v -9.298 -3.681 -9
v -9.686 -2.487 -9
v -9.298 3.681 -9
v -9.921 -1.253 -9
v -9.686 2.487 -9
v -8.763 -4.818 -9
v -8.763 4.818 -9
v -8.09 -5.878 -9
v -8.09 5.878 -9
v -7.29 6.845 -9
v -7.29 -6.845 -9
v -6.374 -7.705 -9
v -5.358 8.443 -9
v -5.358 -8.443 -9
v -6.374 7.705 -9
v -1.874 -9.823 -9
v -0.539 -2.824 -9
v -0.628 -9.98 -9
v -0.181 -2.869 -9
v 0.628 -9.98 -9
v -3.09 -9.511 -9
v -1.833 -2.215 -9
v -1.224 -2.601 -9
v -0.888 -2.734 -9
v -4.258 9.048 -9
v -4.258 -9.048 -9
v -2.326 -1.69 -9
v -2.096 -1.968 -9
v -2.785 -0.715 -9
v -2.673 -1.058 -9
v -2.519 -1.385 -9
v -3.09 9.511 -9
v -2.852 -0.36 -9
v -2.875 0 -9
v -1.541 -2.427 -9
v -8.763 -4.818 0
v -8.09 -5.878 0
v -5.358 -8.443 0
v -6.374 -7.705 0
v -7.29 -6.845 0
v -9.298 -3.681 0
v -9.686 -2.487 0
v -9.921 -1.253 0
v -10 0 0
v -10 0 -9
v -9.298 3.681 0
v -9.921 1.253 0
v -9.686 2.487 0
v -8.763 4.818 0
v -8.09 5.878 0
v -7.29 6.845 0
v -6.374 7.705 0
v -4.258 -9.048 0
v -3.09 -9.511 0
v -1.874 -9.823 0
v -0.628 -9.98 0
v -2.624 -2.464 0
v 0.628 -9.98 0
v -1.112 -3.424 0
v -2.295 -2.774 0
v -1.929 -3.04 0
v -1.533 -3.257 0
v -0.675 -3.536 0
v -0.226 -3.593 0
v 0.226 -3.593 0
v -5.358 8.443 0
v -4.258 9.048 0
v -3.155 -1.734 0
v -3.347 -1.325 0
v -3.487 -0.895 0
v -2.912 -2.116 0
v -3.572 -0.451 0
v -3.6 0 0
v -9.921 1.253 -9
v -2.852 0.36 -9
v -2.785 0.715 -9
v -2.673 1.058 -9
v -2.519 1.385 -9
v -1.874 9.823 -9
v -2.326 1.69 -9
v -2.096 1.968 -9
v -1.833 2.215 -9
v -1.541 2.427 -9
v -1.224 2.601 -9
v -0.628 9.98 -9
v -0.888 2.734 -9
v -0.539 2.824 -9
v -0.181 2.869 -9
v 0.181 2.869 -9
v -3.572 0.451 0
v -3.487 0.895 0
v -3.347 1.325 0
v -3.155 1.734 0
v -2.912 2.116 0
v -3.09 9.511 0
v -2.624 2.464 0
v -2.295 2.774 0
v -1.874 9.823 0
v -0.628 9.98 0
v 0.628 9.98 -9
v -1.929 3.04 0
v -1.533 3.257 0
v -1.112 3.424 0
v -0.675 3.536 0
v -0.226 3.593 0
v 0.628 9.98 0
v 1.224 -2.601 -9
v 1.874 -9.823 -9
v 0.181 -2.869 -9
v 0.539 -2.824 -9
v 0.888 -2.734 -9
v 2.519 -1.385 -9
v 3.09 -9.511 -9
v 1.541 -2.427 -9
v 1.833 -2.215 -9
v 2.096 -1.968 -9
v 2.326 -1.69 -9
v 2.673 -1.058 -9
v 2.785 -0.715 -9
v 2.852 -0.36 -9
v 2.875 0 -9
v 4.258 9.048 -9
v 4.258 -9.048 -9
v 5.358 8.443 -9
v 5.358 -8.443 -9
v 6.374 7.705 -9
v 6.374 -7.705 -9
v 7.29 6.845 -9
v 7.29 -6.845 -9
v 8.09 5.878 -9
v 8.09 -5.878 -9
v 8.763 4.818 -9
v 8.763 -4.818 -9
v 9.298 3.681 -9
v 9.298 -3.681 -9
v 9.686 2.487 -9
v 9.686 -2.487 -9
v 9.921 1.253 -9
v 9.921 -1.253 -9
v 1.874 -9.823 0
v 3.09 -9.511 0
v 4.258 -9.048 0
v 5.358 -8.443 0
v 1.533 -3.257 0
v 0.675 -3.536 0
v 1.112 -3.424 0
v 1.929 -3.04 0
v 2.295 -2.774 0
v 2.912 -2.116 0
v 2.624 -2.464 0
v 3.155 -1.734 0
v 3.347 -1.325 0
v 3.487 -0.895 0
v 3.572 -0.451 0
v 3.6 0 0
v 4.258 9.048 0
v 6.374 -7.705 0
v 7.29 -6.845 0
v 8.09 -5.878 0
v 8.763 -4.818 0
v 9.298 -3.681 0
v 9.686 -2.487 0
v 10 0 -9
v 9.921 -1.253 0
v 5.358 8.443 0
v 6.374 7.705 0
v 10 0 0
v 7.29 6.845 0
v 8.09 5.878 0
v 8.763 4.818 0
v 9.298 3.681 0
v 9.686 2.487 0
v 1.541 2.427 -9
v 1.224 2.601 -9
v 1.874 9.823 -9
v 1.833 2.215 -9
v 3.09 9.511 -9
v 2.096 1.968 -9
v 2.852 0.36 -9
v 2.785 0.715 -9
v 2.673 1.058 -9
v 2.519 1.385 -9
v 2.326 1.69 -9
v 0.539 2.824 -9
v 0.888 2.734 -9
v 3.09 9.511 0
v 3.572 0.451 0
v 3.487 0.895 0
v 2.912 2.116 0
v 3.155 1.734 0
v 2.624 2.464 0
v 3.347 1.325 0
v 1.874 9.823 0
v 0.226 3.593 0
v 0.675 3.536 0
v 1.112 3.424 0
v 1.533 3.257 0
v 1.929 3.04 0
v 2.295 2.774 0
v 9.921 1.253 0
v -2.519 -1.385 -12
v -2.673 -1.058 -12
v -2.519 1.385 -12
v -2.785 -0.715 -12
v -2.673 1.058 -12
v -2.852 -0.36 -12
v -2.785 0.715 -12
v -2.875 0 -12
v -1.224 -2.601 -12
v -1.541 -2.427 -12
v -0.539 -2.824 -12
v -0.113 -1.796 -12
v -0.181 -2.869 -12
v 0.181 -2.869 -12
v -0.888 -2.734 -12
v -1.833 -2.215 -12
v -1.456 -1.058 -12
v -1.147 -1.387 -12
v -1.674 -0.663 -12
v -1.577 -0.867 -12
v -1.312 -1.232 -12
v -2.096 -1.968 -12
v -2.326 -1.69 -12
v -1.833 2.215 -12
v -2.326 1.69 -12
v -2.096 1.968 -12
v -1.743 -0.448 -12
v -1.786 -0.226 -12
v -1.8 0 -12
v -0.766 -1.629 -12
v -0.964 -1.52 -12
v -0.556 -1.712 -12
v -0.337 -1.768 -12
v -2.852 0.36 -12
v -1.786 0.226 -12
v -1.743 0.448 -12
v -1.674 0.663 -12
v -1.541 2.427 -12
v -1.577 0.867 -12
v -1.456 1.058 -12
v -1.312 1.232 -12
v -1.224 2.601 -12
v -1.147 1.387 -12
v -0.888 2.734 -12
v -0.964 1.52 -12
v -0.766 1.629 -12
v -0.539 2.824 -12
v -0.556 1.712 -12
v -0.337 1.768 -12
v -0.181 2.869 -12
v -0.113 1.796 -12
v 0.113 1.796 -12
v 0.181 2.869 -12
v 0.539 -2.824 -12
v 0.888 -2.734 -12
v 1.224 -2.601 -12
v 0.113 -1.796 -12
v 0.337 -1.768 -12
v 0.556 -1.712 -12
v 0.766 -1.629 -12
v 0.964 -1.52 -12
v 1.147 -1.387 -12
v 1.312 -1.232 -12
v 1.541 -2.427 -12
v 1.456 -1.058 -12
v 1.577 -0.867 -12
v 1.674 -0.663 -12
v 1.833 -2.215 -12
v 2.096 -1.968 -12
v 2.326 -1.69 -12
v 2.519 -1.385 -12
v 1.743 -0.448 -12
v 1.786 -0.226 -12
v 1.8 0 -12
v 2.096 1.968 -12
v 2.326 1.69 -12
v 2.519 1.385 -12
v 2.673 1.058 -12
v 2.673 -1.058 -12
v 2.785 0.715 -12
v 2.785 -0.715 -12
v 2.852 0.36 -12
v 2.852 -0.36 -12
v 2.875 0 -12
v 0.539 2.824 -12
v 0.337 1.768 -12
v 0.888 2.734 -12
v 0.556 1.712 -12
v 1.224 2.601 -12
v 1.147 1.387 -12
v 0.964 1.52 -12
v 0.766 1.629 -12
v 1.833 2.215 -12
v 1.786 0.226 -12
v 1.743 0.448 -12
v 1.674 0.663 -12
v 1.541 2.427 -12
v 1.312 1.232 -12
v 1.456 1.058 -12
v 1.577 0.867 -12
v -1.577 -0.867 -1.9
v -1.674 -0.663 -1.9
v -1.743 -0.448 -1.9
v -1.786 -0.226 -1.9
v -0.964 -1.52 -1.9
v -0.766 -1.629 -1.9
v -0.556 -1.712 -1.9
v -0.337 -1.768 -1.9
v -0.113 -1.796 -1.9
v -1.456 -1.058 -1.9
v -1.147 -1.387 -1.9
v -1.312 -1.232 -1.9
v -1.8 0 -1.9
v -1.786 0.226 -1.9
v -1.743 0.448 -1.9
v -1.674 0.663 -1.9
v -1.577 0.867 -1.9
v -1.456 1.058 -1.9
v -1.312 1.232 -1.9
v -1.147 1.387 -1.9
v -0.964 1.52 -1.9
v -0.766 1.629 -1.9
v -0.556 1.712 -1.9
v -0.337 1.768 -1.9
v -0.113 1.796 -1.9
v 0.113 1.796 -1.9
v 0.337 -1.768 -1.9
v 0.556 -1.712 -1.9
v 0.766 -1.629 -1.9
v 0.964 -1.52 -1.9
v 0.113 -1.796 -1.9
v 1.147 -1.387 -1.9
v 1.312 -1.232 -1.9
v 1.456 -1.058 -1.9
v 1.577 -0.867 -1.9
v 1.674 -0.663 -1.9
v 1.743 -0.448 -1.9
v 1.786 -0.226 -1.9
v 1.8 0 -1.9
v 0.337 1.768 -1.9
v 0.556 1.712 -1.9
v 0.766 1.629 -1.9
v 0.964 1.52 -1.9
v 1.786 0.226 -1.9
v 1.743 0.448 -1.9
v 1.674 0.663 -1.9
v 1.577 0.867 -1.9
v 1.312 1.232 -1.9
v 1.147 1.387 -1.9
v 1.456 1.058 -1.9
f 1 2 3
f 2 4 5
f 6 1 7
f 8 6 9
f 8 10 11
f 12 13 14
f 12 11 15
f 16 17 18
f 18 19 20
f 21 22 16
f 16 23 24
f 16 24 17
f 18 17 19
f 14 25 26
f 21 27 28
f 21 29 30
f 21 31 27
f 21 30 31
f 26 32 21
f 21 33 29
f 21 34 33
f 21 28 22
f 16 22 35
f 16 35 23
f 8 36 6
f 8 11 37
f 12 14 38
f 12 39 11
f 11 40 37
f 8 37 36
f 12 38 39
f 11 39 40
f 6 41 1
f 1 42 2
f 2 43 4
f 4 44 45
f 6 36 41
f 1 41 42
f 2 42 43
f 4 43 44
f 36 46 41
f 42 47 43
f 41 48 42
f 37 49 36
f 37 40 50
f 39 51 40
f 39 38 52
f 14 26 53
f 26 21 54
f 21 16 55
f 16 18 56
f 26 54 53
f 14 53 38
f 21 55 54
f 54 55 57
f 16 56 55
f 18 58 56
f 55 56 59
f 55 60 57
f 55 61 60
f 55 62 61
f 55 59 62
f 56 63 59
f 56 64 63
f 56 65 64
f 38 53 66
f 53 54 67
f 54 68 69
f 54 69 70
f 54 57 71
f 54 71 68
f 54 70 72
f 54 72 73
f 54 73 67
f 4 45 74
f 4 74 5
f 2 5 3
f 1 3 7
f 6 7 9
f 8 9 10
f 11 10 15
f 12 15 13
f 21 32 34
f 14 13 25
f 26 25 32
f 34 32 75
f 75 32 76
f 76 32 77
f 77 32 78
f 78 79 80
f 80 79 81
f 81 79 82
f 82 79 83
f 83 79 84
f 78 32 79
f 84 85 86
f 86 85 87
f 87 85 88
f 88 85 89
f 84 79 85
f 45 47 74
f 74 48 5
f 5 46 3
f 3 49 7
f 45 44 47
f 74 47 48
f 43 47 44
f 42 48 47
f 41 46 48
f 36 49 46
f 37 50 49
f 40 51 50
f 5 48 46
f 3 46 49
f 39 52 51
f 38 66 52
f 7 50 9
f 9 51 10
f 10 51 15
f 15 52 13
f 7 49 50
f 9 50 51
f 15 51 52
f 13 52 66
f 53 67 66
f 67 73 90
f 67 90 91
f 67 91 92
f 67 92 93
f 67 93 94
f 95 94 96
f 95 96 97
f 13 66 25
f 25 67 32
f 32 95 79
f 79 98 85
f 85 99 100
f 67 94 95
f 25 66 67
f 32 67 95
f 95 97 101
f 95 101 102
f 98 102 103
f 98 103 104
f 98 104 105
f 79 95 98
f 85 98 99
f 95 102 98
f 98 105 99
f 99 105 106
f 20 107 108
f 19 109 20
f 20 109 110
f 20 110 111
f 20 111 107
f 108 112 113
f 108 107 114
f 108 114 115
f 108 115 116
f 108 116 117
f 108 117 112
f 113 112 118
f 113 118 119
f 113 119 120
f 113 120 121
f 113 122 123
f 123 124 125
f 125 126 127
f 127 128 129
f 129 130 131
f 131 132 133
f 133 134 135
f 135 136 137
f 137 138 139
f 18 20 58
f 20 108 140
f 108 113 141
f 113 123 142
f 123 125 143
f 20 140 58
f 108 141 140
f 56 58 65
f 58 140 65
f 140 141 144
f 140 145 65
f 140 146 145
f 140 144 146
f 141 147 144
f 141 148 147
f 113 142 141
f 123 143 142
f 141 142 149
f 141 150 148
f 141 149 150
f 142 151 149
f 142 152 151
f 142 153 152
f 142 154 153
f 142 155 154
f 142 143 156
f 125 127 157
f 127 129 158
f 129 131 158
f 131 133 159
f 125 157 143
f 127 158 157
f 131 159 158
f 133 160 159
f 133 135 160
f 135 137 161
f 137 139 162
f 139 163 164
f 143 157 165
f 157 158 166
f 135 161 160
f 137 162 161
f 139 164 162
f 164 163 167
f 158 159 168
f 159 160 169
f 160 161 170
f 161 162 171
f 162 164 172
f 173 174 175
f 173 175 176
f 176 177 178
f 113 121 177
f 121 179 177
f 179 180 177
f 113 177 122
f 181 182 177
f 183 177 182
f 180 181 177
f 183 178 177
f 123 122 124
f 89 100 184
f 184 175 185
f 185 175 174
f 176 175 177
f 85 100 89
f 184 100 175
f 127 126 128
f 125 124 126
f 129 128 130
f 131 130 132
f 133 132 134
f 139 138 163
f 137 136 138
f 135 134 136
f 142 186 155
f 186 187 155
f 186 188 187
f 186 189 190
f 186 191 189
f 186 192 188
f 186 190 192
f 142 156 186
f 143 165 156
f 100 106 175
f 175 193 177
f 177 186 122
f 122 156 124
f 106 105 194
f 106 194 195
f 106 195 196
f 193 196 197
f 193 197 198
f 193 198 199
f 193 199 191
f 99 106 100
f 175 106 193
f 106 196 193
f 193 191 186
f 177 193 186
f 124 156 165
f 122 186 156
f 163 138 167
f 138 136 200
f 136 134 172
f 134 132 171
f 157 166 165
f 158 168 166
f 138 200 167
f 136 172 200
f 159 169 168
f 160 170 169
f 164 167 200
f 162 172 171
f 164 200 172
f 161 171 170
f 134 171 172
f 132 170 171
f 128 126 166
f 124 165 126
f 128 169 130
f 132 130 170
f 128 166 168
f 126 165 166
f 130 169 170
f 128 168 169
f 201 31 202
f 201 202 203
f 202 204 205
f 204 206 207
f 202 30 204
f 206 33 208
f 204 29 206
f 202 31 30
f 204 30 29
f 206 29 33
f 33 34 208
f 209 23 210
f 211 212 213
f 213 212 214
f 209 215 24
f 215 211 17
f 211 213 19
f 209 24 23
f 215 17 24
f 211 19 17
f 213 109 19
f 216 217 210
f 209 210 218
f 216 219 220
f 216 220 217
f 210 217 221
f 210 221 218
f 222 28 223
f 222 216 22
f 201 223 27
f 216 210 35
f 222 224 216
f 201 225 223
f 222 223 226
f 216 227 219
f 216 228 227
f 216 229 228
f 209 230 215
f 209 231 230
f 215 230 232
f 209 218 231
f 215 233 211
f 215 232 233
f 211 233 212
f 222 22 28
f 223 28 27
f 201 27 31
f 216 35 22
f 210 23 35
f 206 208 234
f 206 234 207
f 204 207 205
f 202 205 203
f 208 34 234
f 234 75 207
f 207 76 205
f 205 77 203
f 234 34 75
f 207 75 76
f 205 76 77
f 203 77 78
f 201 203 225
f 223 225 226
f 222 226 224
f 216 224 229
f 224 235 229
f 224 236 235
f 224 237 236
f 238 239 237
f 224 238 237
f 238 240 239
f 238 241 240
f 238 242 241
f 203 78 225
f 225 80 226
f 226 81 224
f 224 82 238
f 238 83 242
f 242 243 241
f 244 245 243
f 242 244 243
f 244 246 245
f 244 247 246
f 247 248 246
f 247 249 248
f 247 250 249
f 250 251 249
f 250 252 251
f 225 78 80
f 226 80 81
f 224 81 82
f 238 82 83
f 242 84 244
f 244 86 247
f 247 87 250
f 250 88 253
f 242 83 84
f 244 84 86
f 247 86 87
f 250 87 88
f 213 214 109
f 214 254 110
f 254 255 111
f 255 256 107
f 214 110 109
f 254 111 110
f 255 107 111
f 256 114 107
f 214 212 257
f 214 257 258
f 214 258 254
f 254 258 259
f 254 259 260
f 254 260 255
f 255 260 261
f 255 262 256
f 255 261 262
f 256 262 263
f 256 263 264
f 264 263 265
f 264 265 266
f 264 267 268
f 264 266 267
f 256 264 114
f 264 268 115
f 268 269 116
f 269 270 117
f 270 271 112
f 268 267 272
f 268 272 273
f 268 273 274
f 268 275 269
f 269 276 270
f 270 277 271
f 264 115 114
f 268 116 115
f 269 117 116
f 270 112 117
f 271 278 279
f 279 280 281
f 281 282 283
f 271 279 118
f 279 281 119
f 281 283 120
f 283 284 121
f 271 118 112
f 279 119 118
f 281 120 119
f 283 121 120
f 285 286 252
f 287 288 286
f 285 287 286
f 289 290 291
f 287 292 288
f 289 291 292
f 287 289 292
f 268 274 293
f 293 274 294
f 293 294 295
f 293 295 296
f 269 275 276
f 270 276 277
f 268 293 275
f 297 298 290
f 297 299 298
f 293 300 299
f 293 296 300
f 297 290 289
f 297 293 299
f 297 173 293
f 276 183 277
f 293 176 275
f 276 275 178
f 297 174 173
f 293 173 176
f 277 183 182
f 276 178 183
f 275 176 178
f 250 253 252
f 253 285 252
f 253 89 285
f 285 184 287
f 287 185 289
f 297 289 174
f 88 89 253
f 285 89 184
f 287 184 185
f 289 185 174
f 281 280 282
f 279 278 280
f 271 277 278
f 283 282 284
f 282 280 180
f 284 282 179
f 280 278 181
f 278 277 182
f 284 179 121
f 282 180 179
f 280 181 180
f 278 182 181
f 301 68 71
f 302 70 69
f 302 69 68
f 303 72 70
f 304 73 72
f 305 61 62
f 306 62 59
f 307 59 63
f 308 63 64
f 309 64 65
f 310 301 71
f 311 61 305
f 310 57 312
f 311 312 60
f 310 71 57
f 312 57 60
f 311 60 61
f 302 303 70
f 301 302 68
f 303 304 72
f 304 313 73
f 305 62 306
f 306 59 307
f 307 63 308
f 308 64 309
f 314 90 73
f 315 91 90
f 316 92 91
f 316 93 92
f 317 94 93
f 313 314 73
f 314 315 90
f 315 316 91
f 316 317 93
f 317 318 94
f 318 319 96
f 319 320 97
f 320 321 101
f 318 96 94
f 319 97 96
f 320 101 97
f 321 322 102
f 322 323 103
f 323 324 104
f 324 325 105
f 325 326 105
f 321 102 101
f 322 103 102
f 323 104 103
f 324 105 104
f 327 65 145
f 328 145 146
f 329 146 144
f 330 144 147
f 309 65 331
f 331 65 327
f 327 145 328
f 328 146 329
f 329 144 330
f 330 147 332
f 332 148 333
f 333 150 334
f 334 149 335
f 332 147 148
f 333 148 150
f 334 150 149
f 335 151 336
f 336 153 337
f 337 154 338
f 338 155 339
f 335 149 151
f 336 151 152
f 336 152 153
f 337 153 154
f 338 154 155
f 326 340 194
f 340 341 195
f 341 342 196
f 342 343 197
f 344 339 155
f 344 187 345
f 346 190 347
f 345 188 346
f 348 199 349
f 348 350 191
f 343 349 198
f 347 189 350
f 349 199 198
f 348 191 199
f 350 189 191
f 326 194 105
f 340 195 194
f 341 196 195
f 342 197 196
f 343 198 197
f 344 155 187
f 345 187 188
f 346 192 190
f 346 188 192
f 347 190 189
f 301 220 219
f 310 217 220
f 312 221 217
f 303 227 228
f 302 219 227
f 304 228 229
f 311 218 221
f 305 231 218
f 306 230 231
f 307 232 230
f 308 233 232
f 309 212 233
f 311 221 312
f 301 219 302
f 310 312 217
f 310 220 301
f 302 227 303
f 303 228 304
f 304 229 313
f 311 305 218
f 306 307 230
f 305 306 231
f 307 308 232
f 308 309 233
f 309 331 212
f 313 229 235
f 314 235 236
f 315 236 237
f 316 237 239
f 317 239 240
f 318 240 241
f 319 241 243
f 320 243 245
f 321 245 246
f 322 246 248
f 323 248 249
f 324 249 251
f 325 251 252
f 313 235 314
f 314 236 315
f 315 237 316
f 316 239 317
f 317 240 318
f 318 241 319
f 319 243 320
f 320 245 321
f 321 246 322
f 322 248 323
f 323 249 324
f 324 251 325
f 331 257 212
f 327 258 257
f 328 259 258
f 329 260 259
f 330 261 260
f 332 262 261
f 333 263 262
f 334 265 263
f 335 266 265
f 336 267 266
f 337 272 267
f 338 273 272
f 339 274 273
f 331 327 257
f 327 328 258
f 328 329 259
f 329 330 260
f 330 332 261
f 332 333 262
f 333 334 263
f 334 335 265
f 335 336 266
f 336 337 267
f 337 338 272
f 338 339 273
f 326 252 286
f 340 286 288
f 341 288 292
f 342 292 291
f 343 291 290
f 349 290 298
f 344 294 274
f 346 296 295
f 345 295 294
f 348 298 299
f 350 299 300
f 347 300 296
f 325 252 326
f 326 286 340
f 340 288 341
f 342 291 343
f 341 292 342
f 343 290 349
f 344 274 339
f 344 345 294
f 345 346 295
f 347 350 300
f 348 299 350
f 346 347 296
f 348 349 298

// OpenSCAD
$fn = 50;

difference() {
	union() {
		translate(v = [0, 0, -9.0]) {
			cylinder(h = 9, r = 10.0);
		}
		#translate(v = [0, 0, -12.0]) {
			cylinder(h = 12, r = 2.875);
		}
	}
	union() {
		translate(v = [0, 0, 0]) {
			rotate(a = [0, 0, 0]) {
				difference() {
					union() {
						translate(v = [0, 0, -12.0]) {
							cylinder(h = 12, r = 1.5);
						}
						translate(v = [0, 0, -1.9]) {
							cylinder(h = 1.9, r1 = 1.8, r2 = 3.6);
						}
						translate(v = [0, 0, -12.0]) {
							cylinder(h = 12, r = 1.8);
						}
						translate(v = [0, 0, -12.0]) {
							cylinder(h = 12, r = 1.5);
						}
					}
					union();
				}
			}
		}
	}
}
